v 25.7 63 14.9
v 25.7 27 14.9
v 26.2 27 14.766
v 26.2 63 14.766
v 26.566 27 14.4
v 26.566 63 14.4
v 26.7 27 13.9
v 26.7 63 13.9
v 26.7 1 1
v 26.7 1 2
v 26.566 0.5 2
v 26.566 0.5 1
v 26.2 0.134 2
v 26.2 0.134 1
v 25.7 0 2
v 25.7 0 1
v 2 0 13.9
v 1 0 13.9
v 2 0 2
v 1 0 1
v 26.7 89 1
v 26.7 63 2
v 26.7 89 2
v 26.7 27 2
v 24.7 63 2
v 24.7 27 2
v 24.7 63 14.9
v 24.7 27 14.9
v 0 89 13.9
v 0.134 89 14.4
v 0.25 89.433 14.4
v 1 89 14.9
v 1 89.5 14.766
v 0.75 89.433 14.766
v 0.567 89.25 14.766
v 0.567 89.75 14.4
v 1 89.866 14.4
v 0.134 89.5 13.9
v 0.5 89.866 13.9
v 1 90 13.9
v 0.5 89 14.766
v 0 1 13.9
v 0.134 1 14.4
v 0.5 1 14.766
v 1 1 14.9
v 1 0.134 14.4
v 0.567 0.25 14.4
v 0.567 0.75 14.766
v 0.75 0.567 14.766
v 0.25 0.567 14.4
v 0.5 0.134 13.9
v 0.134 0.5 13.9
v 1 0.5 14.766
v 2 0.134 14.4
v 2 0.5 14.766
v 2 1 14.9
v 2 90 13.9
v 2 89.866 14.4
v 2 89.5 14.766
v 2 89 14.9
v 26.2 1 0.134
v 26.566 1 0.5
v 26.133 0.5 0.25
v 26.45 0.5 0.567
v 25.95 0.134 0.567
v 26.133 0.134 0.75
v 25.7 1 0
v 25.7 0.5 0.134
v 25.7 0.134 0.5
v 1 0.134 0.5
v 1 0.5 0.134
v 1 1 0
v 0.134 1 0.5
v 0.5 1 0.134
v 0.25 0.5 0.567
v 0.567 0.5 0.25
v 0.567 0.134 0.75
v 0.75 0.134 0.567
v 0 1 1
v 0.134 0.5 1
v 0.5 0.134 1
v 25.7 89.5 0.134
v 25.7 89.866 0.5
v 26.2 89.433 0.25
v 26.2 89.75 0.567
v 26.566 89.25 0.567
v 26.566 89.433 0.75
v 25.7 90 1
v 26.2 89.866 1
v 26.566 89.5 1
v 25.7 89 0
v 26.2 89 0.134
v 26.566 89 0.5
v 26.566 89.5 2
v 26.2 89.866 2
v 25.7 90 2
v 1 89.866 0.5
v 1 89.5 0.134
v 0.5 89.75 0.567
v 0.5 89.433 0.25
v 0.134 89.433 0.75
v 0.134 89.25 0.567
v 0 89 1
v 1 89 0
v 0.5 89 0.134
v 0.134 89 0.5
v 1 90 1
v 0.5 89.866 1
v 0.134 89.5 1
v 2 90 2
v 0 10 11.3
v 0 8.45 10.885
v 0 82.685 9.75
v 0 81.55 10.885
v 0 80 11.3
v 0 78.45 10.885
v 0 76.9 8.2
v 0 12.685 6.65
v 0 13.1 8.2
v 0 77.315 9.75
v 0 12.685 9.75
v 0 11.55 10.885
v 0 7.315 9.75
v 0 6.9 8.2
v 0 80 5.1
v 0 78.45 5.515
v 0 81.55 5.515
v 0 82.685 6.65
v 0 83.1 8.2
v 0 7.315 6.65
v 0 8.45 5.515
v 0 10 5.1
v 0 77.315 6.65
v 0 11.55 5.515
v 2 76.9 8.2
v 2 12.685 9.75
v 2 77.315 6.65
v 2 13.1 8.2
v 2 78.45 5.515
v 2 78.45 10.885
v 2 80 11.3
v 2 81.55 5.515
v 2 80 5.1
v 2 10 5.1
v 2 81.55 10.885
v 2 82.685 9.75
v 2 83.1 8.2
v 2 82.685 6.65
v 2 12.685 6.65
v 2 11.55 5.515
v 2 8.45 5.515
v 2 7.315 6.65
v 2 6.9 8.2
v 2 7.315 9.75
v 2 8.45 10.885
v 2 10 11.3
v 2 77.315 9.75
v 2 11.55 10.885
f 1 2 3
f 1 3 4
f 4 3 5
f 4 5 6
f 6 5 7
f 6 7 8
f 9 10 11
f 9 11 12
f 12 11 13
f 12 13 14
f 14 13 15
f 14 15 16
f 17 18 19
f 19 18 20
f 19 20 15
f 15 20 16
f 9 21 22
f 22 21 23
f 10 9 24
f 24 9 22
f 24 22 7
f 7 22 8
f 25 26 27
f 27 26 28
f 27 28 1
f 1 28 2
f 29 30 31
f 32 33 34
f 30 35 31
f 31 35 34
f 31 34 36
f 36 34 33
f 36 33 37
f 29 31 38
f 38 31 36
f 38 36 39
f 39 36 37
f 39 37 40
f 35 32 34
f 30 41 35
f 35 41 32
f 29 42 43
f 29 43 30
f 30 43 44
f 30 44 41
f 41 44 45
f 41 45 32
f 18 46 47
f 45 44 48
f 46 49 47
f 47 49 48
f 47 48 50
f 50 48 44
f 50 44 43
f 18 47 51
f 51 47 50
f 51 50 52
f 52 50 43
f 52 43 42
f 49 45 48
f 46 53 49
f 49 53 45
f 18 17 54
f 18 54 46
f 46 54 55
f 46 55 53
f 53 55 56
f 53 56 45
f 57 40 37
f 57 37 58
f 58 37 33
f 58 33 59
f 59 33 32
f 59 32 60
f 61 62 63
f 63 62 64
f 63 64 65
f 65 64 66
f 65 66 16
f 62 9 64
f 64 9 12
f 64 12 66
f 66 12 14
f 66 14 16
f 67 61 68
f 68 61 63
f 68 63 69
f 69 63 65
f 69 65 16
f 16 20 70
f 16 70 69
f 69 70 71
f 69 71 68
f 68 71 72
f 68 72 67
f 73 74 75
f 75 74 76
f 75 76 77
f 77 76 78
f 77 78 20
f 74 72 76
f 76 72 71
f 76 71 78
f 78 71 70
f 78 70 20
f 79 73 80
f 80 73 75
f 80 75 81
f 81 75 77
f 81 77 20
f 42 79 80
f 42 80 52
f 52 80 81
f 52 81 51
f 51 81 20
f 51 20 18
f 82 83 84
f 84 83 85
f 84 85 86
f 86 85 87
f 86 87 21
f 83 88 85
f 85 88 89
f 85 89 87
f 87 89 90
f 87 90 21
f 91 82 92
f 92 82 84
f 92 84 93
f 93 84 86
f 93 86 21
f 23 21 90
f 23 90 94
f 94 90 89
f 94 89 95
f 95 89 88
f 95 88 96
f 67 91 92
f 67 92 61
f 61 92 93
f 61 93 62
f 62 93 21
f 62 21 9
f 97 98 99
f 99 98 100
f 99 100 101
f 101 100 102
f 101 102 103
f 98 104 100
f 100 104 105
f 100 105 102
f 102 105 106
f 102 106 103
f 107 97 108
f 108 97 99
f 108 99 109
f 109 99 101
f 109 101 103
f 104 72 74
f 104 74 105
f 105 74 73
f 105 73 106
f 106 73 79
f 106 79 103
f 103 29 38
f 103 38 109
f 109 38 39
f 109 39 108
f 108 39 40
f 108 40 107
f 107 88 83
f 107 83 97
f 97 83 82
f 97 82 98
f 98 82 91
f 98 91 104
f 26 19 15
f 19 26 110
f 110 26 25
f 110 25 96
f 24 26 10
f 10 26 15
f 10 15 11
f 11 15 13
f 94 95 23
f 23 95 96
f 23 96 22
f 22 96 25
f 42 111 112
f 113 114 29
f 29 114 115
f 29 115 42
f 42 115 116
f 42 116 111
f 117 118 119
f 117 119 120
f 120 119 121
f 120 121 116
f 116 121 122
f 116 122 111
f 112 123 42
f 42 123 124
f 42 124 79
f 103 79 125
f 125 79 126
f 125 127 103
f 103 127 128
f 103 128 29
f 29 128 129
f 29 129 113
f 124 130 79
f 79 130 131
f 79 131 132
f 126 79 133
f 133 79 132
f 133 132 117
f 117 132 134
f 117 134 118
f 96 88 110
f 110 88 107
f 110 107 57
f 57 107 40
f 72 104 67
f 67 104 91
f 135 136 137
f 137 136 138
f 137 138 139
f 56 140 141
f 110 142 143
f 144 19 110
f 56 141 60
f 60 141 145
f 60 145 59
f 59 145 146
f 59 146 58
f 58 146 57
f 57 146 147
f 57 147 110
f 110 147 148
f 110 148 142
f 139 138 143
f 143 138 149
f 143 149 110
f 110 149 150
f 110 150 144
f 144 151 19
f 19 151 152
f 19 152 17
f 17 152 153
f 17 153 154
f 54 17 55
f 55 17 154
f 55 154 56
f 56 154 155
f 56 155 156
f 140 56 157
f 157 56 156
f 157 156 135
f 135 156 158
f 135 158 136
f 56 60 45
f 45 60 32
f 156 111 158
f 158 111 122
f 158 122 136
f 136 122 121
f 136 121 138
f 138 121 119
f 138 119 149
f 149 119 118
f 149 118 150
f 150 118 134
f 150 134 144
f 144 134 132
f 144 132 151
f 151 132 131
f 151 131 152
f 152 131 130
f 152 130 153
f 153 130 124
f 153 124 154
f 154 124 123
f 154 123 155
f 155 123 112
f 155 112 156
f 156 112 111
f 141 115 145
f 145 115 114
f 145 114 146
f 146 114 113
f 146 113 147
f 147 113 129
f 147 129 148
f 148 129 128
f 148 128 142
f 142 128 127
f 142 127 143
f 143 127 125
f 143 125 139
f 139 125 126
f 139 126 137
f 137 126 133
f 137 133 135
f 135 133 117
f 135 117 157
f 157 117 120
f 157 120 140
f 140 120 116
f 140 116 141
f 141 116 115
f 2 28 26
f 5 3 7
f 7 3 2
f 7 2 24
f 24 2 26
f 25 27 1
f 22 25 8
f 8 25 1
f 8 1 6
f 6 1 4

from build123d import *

# Parameters (mm, degrees)
SKETCH1_W           = 26.7
SKETCH1_H           = 90
BOSS_EXTRUDE1_DEPTH = 2
SKETCH2_W           = 2
SKETCH2_H           = 90
BOSS_EXTRUDE2_DEPTH = 12.9
SKETCH3_R           = 3.1
CUT_EXTRUDE1_DEPTH  = 96.052090982
FILLET1_R           = 1
FILLET2_R           = 1
FILLET3_R           = 1
FILLET6_R           = 1
FILLET7_R           = 1
FILLET8_R           = 1
CUT_EXTRUDE2_REACH  = 96.51
SKETCH5_W           = 12.9
SKETCH5_H           = 27


with BuildPart() as part:
    # Sketch1 → Boss-Extrude1 (new body)
    with BuildSketch(Plane.XY):
        with Locations((13.35, 45)):
            Rectangle(SKETCH1_W, SKETCH1_H)
    extrude(amount=BOSS_EXTRUDE1_DEPTH)

    # Sketch2 → Boss-Extrude2 (add)
    with BuildSketch(Plane.XY.offset(2)):
        with Locations((1, 45)):
            Rectangle(SKETCH2_W, SKETCH2_H)
        with Locations((25.7, 45)):
            Rectangle(SKETCH2_W, SKETCH2_H)
    extrude(amount=BOSS_EXTRUDE2_DEPTH)

    # Sketch3 → Cut-Extrude1 (cut, through all)
    with BuildSketch(Plane.ZY):
        with Locations((8.2, 10)):
            Circle(SKETCH3_R)
    cut_extrude1 = extrude(amount=-CUT_EXTRUDE1_DEPTH, mode=Mode.SUBTRACT)

    # Mirror1: Cut-Extrude1 across plane
    add(cut_extrude1.mirror(Plane.ZX.offset(45)), mode=Mode.SUBTRACT)

    # Fillet1
    fillet1_edges = [part.edges().sort_by_distance(p)[0] for p in [
        (13.35, 90, 0),
    ]]
    fillet(fillet1_edges, radius=FILLET1_R)

    # Fillet2
    fillet2_edges = [part.edges().sort_by_distance(p)[0] for p in [
        (0, 44.5, 0),
        (0, 89.707106781, 0.292893219),
        (0, 90, 7.95),
    ]]
    fillet(fillet2_edges, radius=FILLET2_R)

    # Fillet3
    fillet3_edges = [part.edges().sort_by_distance(p)[0] for p in [
        (26.7, 44.5, 0),
        (26.7, 89.707106781, 0.292893219),
        (26.7, 90, 7.95),
    ]]
    fillet(fillet3_edges, radius=FILLET3_R)

    # Fillet6
    fillet6_edges = [part.edges().sort_by_distance(p)[0] for p in [
        (13.35, 0, 0),
        (0.292893219, 0, 0.292893219),
        (26.7, 0, 7.95),
        (0, 0, 7.95),
        (26.407106781, 0, 0.292893219),
    ]]
    fillet(fillet6_edges, radius=FILLET6_R)

    # Fillet7
    fillet7_edges = [part.edges().sort_by_distance(p)[0] for p in [
        (1.5, 90, 14.9),
        (0, 45, 14.9),
        (0.292893219, 89.707106781, 14.9),
        (1.5, 0, 14.9),
        (0.292893219, 0.292893219, 14.9),
    ]]
    fillet(fillet7_edges, radius=FILLET7_R)

    # Fillet8
    fillet8_edges = [part.edges().sort_by_distance(p)[0] for p in [
        (25.2, 0, 14.9),
        (25.2, 90, 14.9),
        (26.407106781, 89.707106781, 14.9),
        (26.7, 45, 14.9),
        (26.407106781, 0.292893219, 14.9),
    ]]
    fillet(fillet8_edges, radius=FILLET8_R)

    # Cut-Extrude2: up to this face of the body (flat: up to its plane)
    cut_extrude2_end = Plane(part.part.faces().sort_by_distance((26.7, 45, 7.407866324))[0])
    # Sketch5 → Cut-Extrude2 (cut, up to the picked face)
    with BuildSketch(Plane.ZY.offset(-24.7), mode=Mode.PRIVATE) as cut_extrude2_sk1:
        with Locations((8.45, 76.5)):
            Rectangle(SKETCH5_W, SKETCH5_H)
    cut_extrude2_tool1 = split(extrude(cut_extrude2_sk1.sketch, amount=-CUT_EXTRUDE2_REACH, mode=Mode.PRIVATE), bisect_by=cut_extrude2_end, keep=Keep.BOTH, mode=Mode.PRIVATE)
    # Sketch5 → Cut-Extrude2 (cut, up to the picked face)
    with BuildSketch(Plane.ZY.offset(-24.7), mode=Mode.PRIVATE) as cut_extrude2_sk2:
        with Locations((8.45, 13.5)):
            Rectangle(SKETCH5_W, SKETCH5_H)
    cut_extrude2_tool2 = split(extrude(cut_extrude2_sk2.sketch, amount=-CUT_EXTRUDE2_REACH, mode=Mode.PRIVATE), bisect_by=cut_extrude2_end, keep=Keep.BOTH, mode=Mode.PRIVATE)
    add(cut_extrude2_tool1.solids().sort_by(Axis((24.7, 76.5, 8.45), (1, 0, 0)))[0], mode=Mode.SUBTRACT)
    add(cut_extrude2_tool2.solids().sort_by(Axis((24.7, 13.5, 8.45), (1, 0, 0)))[0], mode=Mode.SUBTRACT)


solid = part.part
